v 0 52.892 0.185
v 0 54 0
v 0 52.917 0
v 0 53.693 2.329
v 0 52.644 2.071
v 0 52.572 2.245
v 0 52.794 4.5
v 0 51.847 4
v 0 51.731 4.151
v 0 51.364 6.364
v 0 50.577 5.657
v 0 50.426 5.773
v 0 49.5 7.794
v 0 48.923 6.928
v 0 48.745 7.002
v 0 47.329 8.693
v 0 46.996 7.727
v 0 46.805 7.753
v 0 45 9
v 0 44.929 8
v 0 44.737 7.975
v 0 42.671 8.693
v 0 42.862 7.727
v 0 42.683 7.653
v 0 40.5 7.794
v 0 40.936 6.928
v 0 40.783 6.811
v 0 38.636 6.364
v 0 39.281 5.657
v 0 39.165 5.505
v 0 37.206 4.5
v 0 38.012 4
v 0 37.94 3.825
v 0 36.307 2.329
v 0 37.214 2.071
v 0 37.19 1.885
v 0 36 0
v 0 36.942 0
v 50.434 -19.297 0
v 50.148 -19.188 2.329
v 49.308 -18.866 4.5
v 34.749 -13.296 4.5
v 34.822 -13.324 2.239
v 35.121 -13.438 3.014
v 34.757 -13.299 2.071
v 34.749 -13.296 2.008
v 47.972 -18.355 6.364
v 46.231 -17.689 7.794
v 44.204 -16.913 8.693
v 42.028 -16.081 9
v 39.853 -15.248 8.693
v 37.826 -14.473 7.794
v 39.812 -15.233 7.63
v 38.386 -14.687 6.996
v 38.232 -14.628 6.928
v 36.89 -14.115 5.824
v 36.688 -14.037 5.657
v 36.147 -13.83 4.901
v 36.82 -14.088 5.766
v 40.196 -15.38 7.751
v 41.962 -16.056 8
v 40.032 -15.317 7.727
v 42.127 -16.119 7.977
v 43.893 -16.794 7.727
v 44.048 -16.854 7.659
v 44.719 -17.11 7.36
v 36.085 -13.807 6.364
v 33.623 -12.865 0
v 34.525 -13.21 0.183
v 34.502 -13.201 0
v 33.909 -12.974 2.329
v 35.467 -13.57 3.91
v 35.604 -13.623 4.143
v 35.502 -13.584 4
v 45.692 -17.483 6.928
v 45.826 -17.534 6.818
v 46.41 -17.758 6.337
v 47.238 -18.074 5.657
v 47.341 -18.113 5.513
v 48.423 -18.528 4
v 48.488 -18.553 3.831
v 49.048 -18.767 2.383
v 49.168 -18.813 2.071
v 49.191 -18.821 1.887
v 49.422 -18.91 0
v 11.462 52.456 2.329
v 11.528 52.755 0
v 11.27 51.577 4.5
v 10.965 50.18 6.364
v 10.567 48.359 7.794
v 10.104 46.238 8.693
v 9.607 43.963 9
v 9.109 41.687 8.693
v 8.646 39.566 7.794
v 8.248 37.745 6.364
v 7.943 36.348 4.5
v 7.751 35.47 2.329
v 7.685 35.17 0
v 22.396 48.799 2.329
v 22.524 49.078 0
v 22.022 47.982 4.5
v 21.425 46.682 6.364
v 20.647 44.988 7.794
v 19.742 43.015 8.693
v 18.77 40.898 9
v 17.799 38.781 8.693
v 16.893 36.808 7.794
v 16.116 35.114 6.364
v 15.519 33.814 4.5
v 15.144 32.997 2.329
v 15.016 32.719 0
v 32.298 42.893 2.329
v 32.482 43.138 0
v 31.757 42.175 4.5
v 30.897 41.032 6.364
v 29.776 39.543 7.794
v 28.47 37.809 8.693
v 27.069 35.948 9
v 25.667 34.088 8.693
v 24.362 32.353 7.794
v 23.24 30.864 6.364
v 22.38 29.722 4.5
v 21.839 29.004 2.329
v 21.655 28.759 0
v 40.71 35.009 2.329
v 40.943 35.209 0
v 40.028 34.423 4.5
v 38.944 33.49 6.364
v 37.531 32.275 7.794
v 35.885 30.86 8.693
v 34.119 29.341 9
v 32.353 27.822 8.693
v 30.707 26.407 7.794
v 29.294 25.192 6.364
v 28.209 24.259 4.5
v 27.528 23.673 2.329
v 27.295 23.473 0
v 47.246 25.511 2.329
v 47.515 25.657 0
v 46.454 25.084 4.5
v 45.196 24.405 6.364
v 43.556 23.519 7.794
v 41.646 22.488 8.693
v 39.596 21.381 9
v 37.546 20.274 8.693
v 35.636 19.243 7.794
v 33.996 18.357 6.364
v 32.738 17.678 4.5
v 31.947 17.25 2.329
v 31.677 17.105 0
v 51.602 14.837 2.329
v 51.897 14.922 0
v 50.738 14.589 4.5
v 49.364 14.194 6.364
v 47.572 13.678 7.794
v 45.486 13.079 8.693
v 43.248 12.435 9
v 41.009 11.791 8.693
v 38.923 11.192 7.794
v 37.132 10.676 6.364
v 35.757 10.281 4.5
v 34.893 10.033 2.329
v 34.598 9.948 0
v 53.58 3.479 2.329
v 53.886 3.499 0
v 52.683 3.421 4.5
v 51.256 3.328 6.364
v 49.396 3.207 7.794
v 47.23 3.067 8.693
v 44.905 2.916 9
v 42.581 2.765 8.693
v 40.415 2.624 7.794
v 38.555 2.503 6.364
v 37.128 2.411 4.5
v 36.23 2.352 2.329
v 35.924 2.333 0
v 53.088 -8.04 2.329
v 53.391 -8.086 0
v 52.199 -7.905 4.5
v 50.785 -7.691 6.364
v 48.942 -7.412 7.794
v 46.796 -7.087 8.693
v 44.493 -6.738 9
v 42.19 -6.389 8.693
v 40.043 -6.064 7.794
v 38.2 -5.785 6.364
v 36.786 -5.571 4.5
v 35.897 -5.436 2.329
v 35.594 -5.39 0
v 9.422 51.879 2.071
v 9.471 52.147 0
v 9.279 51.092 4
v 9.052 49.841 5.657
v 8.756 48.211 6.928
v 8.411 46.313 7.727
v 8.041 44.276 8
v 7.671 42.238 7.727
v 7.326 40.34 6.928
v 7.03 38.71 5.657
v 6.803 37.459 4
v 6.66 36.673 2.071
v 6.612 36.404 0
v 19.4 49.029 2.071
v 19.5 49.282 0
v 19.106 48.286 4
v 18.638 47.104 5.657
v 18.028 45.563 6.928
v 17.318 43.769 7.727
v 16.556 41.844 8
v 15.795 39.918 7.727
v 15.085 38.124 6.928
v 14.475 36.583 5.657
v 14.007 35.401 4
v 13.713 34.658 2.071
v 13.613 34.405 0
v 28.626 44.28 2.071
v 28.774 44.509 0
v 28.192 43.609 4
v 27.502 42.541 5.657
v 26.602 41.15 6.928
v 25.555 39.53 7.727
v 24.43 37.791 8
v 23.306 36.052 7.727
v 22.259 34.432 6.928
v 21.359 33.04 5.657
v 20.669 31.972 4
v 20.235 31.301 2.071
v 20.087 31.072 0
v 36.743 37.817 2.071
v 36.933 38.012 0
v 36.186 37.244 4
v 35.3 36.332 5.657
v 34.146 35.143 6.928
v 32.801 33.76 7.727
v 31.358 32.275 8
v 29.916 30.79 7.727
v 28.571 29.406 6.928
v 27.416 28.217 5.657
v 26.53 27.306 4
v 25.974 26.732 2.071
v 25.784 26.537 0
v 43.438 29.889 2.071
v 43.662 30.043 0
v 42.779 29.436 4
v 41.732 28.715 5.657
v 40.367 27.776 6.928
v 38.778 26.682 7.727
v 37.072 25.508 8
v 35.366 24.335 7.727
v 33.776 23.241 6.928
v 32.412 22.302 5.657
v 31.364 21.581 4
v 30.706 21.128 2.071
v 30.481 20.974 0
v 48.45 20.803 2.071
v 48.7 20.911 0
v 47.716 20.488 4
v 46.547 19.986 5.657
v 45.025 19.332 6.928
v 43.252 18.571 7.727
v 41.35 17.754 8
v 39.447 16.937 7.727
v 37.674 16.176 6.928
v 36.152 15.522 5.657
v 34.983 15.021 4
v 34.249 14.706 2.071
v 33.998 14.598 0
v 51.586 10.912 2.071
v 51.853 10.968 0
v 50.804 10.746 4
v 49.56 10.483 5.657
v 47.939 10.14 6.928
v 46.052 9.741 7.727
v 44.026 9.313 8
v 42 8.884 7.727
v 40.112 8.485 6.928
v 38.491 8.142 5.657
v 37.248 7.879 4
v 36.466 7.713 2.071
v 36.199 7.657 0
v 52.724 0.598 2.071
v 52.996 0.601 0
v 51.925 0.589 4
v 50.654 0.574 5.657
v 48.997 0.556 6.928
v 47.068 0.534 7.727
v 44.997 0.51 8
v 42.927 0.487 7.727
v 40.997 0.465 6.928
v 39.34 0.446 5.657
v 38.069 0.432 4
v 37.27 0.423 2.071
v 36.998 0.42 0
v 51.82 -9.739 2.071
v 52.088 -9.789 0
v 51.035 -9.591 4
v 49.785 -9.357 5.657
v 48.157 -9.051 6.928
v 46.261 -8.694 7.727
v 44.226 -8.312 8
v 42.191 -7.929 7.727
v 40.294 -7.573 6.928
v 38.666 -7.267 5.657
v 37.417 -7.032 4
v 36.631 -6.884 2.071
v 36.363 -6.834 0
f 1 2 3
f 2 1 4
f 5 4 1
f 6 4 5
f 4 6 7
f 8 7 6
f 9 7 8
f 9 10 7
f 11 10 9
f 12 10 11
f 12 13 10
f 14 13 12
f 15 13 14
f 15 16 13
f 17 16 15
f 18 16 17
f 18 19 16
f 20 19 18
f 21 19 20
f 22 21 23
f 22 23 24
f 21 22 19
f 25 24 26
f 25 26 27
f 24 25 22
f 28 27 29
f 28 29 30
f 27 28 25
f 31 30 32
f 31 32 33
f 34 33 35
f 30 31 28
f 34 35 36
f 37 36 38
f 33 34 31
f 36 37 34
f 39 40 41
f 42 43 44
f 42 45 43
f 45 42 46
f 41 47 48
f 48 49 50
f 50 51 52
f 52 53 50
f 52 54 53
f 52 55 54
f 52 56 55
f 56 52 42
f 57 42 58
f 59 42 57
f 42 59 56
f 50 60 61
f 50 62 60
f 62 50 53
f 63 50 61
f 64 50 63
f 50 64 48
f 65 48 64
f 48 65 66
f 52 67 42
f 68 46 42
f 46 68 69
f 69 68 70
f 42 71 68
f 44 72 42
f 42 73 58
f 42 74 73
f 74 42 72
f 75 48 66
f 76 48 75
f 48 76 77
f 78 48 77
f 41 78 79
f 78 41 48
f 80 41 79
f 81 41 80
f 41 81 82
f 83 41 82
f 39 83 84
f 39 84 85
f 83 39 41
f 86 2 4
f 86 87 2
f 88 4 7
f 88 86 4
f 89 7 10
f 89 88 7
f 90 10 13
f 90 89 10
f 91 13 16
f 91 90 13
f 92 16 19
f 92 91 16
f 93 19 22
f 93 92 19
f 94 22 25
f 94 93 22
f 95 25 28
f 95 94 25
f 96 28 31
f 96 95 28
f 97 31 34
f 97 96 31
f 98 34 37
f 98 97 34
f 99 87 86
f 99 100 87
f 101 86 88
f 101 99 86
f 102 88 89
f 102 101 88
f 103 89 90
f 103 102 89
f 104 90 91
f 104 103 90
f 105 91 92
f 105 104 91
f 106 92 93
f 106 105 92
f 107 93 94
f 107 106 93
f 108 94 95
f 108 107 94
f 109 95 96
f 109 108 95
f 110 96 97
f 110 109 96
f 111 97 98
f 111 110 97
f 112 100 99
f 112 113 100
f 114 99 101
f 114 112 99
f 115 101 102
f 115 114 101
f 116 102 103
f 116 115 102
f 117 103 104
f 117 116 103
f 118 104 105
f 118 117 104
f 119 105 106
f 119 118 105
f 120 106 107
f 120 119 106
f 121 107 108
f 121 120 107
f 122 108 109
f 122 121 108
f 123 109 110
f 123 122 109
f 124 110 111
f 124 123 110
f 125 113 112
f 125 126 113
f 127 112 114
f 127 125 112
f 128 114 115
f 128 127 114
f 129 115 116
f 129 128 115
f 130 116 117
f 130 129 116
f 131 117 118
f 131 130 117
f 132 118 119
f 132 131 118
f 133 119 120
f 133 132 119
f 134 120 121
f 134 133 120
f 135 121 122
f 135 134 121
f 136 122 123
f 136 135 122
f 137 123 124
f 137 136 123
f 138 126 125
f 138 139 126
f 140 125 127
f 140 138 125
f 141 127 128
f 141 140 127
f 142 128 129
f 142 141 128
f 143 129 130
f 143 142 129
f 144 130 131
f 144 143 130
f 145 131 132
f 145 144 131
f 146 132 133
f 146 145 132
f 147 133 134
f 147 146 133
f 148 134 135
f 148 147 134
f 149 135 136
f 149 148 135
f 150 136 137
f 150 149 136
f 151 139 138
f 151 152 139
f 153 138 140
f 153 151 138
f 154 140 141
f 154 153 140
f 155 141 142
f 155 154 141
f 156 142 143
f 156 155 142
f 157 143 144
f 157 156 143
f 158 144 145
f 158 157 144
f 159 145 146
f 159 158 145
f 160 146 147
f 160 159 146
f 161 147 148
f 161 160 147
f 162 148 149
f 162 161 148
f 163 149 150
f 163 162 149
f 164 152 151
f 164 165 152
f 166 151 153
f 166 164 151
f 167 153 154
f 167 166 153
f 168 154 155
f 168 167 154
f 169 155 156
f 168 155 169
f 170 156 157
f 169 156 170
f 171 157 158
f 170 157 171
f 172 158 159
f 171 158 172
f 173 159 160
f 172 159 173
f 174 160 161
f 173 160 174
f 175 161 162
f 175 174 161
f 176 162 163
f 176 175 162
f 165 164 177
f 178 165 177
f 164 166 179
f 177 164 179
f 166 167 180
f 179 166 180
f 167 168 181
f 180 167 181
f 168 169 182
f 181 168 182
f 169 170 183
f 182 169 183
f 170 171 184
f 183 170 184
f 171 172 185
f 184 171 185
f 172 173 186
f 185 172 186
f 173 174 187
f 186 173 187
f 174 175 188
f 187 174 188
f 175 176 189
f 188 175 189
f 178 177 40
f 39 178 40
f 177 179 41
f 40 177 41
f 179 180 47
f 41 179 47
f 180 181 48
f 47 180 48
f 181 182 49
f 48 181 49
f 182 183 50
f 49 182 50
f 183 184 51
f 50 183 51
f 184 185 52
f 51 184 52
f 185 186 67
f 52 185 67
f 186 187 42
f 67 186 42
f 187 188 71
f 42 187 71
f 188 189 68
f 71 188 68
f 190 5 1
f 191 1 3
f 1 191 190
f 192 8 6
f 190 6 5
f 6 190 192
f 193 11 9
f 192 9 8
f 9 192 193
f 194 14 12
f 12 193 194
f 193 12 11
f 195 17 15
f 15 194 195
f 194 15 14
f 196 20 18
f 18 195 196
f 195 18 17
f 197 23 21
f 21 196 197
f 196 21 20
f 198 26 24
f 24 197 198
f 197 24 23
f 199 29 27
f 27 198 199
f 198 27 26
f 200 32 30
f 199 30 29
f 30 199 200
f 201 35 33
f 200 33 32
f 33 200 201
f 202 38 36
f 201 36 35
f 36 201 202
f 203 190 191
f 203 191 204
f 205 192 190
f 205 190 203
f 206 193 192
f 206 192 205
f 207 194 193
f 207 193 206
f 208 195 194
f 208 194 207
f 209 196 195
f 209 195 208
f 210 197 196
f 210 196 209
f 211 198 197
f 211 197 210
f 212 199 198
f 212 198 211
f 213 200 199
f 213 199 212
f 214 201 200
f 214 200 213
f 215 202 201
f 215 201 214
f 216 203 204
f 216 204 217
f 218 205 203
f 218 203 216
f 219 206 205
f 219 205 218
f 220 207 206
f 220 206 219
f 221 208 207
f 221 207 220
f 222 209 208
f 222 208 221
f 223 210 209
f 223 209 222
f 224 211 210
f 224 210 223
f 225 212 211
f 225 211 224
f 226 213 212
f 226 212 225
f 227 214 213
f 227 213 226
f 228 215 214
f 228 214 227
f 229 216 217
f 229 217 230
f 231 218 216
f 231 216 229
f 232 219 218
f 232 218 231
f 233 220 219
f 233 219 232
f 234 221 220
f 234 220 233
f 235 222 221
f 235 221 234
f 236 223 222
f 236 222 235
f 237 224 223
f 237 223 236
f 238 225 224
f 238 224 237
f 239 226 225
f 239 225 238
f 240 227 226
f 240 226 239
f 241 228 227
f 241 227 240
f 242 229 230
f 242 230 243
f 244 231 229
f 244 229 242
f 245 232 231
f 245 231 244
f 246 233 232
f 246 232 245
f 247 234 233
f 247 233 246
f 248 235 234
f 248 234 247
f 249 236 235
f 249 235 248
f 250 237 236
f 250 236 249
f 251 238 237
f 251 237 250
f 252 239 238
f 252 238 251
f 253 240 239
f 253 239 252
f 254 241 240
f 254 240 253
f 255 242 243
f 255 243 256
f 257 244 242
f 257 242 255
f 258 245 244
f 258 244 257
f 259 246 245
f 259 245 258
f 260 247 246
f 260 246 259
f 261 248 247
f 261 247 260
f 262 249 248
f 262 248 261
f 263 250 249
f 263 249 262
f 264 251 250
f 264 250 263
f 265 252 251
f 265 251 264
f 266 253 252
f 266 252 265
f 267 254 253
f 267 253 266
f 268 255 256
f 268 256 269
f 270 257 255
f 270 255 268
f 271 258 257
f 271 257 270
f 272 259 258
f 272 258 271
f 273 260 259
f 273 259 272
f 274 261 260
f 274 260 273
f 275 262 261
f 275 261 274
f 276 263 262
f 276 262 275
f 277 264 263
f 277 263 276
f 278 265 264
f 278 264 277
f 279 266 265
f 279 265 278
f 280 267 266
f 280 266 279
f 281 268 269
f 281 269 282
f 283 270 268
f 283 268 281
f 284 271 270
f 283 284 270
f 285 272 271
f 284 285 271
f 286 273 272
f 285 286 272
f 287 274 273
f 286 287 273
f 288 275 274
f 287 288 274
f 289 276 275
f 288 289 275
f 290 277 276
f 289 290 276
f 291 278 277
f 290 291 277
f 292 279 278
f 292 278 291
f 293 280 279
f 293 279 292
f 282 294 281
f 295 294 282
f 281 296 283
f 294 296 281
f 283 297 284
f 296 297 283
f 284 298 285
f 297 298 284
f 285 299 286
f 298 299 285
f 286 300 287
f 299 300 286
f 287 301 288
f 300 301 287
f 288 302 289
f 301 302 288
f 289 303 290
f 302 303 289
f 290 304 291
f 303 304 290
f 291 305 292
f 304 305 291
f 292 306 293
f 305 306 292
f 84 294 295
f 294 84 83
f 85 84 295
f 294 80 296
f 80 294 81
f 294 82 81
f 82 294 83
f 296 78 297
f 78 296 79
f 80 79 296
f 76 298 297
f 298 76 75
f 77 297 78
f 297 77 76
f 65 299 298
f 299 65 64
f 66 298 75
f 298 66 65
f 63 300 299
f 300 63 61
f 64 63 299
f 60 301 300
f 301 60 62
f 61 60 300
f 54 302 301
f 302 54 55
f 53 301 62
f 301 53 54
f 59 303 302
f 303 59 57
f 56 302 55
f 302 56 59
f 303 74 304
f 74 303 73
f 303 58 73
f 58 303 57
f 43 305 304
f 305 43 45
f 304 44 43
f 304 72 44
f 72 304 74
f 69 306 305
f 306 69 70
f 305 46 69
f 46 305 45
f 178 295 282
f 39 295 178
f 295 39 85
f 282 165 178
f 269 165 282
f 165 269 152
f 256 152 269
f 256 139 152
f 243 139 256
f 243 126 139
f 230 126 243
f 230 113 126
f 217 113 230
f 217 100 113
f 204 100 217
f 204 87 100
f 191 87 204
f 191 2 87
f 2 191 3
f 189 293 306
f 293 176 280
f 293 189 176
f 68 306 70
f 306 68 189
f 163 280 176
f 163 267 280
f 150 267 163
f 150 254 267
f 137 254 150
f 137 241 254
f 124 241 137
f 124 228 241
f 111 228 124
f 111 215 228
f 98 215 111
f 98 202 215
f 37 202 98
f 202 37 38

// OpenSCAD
// file: ../build_environments.scad
// build_environments.scad: modules to build level sections
//

module pool(diameter=10.0, wall_height=2.0, step_width=3.0, connections=[])
{
    difference() {
        union() {
        difference() {
            cylinder(h=0.5,r1=diameter+step_width,r2=diameter+step_width,$fn=48);
            translate([0,0,-0.1])
                cylinder(h=0.7,r1=diameter,r2=diameter,$fn=48);
        }
        difference() {
            cylinder(h=wall_height,r1=diameter+step_width+1.0,r2=diameter+step_width+1.0,$fn=48);
            translate([0,0,-0.1])
                cylinder(h=wall_height+0.2,r1=diameter+step_width,r2=diameter+step_width,$fn=48);
        }
        }
    
        for (c = connections)
        {
            rotate([0,90,0]) {
                angle = atan2(c[1],c[0]);
                rotate([-angle,0,0]) {
                    cylinder(h=diameter+5.0,r1=c[2],r2=c[2],$fn=48);
                }
            }
        }
    }
}

module straight(length=10.0, width=2.0, dy1=0.0, dy2=0.0, dz=0.0)
{
    dims = [0, 0, 0, 0, 0, (dz/length)];
    matrix = [
        [ 1, dims[0], dims[1], 0 ],
        [ dims[2], 1, dims[4], 0 ],
        [ dims[5], dims[3], 1, 0 ],
        [ 0, 0, 0, 1 ]
    ];
    multmatrix(matrix)
    difference() {
        translate([dy1,0,0])
        union() {
            rotate([0,90,0]) {
                difference() {
                    cylinder(h=(length-dy1-dy2),r1=width+1.0,r2=width+1.0,$fn=24);
                    translate([0,0,-0.1])
                        cylinder(h=(length-dy1-dy2+0.2),r1=width,r2=width,$fn=24);
                }
                difference() {
                    cylinder(h=1.0,r1=width+2.0,r2=width+2.0,$fn=24);
                    translate([0,0,-0.1])
                        cylinder(h=1.2,r1=width,r2=width,$fn=24);
                }
                translate([0,0,(length-dy1-dy2)-1.0]) {
                    difference() {
                        cylinder(h=1.0,r1=width+2.0,r2=width+2.0,$fn=24);
                        translate([0,0,-0.1])
                            cylinder(h=1.2,r1=width,r2=width,$fn=24);
                    }
                }
            }
        }
        translate([0,0,-(2*width+4.0)/2])
            cube([3*length,3*length,2*width+4.0],center=true);
    }
}

module curve(p0=[0,0], center=[0,0], dir=1, angle=0.0, width=2.0)
{
    radius = sqrt((p0[0]-center[0])*(p0[0]-center[0]) + (p0[1]-center[1])*(p0[1]-center[1]));
    if (dir == 0) {
        difference() {
            rotate([0,0,-90])
            difference() {
                rotate_extrude(angle = angle, convexity = 10, $fn=32)
                    translate([radius, 0, 0])
                        circle(r = width+1.0,$fn=24);
                rotate([0,0,-1.0])
                    rotate_extrude(angle = angle+2.0, convexity = 10, $fn=32)
                        translate([radius, 0, 0])
                            circle(r = width,$fn=24);
            }
            translate([0,0,-(2*width+4.0)/2])
                cube([5*radius,5*radius,2*width+4.0],center=true);
        }
    }
    else {
        difference() {
            rotate([0,0,90])
            difference() {
                rotate_extrude(angle = -angle, convexity = 10, $fn=32)
                    translate([radius, 0, 0])
                        circle(r = width+1.0,$fn=24);
                rotate([0,0,1.0])
                    rotate_extrude(angle = -angle-2.0, convexity = 10, $fn=32)
                        translate([radius, 0, 0])
                            circle(r = width,$fn=24);
            }
            translate([0,0,-(2*width+4.0)/2])
                cube([5*radius,5*radius,2*width+4.0],center=true);
        }
    }

}

// test pool
//pool(diameter=12.0000, wall_height=3.0000, step_width=3.0000, connections=[[0.0000,-26.0000,2.0000], [23.6074,0.0000,2.0000]]);

// test straight, slope
//straight(length=26.0000, width=2.0000, dy1=11.8322, dy2=6.7082, dz=0.0000);
//straight(length=29.1549, width=12.0000, dy1=0.0000, dy2=0.0000, dz=-15.0000);

// test curve
//curve(p0=[23.6074, 0.0000], center=[23.6074, 5.0000], dir=0, angle=60.1011, width=2.0000);
//curve(p0=[33.6426, 12.4219], center=[37.9771, 9.9295], dir=1, angle=120.4627, width=2.0000);
// main file
use <../build_environments.scad>;
curve(p0=[80.3559, 104.0612], center=[84.7863, 59.2799], dir=1, angle=110.9378, width=8.0000);
